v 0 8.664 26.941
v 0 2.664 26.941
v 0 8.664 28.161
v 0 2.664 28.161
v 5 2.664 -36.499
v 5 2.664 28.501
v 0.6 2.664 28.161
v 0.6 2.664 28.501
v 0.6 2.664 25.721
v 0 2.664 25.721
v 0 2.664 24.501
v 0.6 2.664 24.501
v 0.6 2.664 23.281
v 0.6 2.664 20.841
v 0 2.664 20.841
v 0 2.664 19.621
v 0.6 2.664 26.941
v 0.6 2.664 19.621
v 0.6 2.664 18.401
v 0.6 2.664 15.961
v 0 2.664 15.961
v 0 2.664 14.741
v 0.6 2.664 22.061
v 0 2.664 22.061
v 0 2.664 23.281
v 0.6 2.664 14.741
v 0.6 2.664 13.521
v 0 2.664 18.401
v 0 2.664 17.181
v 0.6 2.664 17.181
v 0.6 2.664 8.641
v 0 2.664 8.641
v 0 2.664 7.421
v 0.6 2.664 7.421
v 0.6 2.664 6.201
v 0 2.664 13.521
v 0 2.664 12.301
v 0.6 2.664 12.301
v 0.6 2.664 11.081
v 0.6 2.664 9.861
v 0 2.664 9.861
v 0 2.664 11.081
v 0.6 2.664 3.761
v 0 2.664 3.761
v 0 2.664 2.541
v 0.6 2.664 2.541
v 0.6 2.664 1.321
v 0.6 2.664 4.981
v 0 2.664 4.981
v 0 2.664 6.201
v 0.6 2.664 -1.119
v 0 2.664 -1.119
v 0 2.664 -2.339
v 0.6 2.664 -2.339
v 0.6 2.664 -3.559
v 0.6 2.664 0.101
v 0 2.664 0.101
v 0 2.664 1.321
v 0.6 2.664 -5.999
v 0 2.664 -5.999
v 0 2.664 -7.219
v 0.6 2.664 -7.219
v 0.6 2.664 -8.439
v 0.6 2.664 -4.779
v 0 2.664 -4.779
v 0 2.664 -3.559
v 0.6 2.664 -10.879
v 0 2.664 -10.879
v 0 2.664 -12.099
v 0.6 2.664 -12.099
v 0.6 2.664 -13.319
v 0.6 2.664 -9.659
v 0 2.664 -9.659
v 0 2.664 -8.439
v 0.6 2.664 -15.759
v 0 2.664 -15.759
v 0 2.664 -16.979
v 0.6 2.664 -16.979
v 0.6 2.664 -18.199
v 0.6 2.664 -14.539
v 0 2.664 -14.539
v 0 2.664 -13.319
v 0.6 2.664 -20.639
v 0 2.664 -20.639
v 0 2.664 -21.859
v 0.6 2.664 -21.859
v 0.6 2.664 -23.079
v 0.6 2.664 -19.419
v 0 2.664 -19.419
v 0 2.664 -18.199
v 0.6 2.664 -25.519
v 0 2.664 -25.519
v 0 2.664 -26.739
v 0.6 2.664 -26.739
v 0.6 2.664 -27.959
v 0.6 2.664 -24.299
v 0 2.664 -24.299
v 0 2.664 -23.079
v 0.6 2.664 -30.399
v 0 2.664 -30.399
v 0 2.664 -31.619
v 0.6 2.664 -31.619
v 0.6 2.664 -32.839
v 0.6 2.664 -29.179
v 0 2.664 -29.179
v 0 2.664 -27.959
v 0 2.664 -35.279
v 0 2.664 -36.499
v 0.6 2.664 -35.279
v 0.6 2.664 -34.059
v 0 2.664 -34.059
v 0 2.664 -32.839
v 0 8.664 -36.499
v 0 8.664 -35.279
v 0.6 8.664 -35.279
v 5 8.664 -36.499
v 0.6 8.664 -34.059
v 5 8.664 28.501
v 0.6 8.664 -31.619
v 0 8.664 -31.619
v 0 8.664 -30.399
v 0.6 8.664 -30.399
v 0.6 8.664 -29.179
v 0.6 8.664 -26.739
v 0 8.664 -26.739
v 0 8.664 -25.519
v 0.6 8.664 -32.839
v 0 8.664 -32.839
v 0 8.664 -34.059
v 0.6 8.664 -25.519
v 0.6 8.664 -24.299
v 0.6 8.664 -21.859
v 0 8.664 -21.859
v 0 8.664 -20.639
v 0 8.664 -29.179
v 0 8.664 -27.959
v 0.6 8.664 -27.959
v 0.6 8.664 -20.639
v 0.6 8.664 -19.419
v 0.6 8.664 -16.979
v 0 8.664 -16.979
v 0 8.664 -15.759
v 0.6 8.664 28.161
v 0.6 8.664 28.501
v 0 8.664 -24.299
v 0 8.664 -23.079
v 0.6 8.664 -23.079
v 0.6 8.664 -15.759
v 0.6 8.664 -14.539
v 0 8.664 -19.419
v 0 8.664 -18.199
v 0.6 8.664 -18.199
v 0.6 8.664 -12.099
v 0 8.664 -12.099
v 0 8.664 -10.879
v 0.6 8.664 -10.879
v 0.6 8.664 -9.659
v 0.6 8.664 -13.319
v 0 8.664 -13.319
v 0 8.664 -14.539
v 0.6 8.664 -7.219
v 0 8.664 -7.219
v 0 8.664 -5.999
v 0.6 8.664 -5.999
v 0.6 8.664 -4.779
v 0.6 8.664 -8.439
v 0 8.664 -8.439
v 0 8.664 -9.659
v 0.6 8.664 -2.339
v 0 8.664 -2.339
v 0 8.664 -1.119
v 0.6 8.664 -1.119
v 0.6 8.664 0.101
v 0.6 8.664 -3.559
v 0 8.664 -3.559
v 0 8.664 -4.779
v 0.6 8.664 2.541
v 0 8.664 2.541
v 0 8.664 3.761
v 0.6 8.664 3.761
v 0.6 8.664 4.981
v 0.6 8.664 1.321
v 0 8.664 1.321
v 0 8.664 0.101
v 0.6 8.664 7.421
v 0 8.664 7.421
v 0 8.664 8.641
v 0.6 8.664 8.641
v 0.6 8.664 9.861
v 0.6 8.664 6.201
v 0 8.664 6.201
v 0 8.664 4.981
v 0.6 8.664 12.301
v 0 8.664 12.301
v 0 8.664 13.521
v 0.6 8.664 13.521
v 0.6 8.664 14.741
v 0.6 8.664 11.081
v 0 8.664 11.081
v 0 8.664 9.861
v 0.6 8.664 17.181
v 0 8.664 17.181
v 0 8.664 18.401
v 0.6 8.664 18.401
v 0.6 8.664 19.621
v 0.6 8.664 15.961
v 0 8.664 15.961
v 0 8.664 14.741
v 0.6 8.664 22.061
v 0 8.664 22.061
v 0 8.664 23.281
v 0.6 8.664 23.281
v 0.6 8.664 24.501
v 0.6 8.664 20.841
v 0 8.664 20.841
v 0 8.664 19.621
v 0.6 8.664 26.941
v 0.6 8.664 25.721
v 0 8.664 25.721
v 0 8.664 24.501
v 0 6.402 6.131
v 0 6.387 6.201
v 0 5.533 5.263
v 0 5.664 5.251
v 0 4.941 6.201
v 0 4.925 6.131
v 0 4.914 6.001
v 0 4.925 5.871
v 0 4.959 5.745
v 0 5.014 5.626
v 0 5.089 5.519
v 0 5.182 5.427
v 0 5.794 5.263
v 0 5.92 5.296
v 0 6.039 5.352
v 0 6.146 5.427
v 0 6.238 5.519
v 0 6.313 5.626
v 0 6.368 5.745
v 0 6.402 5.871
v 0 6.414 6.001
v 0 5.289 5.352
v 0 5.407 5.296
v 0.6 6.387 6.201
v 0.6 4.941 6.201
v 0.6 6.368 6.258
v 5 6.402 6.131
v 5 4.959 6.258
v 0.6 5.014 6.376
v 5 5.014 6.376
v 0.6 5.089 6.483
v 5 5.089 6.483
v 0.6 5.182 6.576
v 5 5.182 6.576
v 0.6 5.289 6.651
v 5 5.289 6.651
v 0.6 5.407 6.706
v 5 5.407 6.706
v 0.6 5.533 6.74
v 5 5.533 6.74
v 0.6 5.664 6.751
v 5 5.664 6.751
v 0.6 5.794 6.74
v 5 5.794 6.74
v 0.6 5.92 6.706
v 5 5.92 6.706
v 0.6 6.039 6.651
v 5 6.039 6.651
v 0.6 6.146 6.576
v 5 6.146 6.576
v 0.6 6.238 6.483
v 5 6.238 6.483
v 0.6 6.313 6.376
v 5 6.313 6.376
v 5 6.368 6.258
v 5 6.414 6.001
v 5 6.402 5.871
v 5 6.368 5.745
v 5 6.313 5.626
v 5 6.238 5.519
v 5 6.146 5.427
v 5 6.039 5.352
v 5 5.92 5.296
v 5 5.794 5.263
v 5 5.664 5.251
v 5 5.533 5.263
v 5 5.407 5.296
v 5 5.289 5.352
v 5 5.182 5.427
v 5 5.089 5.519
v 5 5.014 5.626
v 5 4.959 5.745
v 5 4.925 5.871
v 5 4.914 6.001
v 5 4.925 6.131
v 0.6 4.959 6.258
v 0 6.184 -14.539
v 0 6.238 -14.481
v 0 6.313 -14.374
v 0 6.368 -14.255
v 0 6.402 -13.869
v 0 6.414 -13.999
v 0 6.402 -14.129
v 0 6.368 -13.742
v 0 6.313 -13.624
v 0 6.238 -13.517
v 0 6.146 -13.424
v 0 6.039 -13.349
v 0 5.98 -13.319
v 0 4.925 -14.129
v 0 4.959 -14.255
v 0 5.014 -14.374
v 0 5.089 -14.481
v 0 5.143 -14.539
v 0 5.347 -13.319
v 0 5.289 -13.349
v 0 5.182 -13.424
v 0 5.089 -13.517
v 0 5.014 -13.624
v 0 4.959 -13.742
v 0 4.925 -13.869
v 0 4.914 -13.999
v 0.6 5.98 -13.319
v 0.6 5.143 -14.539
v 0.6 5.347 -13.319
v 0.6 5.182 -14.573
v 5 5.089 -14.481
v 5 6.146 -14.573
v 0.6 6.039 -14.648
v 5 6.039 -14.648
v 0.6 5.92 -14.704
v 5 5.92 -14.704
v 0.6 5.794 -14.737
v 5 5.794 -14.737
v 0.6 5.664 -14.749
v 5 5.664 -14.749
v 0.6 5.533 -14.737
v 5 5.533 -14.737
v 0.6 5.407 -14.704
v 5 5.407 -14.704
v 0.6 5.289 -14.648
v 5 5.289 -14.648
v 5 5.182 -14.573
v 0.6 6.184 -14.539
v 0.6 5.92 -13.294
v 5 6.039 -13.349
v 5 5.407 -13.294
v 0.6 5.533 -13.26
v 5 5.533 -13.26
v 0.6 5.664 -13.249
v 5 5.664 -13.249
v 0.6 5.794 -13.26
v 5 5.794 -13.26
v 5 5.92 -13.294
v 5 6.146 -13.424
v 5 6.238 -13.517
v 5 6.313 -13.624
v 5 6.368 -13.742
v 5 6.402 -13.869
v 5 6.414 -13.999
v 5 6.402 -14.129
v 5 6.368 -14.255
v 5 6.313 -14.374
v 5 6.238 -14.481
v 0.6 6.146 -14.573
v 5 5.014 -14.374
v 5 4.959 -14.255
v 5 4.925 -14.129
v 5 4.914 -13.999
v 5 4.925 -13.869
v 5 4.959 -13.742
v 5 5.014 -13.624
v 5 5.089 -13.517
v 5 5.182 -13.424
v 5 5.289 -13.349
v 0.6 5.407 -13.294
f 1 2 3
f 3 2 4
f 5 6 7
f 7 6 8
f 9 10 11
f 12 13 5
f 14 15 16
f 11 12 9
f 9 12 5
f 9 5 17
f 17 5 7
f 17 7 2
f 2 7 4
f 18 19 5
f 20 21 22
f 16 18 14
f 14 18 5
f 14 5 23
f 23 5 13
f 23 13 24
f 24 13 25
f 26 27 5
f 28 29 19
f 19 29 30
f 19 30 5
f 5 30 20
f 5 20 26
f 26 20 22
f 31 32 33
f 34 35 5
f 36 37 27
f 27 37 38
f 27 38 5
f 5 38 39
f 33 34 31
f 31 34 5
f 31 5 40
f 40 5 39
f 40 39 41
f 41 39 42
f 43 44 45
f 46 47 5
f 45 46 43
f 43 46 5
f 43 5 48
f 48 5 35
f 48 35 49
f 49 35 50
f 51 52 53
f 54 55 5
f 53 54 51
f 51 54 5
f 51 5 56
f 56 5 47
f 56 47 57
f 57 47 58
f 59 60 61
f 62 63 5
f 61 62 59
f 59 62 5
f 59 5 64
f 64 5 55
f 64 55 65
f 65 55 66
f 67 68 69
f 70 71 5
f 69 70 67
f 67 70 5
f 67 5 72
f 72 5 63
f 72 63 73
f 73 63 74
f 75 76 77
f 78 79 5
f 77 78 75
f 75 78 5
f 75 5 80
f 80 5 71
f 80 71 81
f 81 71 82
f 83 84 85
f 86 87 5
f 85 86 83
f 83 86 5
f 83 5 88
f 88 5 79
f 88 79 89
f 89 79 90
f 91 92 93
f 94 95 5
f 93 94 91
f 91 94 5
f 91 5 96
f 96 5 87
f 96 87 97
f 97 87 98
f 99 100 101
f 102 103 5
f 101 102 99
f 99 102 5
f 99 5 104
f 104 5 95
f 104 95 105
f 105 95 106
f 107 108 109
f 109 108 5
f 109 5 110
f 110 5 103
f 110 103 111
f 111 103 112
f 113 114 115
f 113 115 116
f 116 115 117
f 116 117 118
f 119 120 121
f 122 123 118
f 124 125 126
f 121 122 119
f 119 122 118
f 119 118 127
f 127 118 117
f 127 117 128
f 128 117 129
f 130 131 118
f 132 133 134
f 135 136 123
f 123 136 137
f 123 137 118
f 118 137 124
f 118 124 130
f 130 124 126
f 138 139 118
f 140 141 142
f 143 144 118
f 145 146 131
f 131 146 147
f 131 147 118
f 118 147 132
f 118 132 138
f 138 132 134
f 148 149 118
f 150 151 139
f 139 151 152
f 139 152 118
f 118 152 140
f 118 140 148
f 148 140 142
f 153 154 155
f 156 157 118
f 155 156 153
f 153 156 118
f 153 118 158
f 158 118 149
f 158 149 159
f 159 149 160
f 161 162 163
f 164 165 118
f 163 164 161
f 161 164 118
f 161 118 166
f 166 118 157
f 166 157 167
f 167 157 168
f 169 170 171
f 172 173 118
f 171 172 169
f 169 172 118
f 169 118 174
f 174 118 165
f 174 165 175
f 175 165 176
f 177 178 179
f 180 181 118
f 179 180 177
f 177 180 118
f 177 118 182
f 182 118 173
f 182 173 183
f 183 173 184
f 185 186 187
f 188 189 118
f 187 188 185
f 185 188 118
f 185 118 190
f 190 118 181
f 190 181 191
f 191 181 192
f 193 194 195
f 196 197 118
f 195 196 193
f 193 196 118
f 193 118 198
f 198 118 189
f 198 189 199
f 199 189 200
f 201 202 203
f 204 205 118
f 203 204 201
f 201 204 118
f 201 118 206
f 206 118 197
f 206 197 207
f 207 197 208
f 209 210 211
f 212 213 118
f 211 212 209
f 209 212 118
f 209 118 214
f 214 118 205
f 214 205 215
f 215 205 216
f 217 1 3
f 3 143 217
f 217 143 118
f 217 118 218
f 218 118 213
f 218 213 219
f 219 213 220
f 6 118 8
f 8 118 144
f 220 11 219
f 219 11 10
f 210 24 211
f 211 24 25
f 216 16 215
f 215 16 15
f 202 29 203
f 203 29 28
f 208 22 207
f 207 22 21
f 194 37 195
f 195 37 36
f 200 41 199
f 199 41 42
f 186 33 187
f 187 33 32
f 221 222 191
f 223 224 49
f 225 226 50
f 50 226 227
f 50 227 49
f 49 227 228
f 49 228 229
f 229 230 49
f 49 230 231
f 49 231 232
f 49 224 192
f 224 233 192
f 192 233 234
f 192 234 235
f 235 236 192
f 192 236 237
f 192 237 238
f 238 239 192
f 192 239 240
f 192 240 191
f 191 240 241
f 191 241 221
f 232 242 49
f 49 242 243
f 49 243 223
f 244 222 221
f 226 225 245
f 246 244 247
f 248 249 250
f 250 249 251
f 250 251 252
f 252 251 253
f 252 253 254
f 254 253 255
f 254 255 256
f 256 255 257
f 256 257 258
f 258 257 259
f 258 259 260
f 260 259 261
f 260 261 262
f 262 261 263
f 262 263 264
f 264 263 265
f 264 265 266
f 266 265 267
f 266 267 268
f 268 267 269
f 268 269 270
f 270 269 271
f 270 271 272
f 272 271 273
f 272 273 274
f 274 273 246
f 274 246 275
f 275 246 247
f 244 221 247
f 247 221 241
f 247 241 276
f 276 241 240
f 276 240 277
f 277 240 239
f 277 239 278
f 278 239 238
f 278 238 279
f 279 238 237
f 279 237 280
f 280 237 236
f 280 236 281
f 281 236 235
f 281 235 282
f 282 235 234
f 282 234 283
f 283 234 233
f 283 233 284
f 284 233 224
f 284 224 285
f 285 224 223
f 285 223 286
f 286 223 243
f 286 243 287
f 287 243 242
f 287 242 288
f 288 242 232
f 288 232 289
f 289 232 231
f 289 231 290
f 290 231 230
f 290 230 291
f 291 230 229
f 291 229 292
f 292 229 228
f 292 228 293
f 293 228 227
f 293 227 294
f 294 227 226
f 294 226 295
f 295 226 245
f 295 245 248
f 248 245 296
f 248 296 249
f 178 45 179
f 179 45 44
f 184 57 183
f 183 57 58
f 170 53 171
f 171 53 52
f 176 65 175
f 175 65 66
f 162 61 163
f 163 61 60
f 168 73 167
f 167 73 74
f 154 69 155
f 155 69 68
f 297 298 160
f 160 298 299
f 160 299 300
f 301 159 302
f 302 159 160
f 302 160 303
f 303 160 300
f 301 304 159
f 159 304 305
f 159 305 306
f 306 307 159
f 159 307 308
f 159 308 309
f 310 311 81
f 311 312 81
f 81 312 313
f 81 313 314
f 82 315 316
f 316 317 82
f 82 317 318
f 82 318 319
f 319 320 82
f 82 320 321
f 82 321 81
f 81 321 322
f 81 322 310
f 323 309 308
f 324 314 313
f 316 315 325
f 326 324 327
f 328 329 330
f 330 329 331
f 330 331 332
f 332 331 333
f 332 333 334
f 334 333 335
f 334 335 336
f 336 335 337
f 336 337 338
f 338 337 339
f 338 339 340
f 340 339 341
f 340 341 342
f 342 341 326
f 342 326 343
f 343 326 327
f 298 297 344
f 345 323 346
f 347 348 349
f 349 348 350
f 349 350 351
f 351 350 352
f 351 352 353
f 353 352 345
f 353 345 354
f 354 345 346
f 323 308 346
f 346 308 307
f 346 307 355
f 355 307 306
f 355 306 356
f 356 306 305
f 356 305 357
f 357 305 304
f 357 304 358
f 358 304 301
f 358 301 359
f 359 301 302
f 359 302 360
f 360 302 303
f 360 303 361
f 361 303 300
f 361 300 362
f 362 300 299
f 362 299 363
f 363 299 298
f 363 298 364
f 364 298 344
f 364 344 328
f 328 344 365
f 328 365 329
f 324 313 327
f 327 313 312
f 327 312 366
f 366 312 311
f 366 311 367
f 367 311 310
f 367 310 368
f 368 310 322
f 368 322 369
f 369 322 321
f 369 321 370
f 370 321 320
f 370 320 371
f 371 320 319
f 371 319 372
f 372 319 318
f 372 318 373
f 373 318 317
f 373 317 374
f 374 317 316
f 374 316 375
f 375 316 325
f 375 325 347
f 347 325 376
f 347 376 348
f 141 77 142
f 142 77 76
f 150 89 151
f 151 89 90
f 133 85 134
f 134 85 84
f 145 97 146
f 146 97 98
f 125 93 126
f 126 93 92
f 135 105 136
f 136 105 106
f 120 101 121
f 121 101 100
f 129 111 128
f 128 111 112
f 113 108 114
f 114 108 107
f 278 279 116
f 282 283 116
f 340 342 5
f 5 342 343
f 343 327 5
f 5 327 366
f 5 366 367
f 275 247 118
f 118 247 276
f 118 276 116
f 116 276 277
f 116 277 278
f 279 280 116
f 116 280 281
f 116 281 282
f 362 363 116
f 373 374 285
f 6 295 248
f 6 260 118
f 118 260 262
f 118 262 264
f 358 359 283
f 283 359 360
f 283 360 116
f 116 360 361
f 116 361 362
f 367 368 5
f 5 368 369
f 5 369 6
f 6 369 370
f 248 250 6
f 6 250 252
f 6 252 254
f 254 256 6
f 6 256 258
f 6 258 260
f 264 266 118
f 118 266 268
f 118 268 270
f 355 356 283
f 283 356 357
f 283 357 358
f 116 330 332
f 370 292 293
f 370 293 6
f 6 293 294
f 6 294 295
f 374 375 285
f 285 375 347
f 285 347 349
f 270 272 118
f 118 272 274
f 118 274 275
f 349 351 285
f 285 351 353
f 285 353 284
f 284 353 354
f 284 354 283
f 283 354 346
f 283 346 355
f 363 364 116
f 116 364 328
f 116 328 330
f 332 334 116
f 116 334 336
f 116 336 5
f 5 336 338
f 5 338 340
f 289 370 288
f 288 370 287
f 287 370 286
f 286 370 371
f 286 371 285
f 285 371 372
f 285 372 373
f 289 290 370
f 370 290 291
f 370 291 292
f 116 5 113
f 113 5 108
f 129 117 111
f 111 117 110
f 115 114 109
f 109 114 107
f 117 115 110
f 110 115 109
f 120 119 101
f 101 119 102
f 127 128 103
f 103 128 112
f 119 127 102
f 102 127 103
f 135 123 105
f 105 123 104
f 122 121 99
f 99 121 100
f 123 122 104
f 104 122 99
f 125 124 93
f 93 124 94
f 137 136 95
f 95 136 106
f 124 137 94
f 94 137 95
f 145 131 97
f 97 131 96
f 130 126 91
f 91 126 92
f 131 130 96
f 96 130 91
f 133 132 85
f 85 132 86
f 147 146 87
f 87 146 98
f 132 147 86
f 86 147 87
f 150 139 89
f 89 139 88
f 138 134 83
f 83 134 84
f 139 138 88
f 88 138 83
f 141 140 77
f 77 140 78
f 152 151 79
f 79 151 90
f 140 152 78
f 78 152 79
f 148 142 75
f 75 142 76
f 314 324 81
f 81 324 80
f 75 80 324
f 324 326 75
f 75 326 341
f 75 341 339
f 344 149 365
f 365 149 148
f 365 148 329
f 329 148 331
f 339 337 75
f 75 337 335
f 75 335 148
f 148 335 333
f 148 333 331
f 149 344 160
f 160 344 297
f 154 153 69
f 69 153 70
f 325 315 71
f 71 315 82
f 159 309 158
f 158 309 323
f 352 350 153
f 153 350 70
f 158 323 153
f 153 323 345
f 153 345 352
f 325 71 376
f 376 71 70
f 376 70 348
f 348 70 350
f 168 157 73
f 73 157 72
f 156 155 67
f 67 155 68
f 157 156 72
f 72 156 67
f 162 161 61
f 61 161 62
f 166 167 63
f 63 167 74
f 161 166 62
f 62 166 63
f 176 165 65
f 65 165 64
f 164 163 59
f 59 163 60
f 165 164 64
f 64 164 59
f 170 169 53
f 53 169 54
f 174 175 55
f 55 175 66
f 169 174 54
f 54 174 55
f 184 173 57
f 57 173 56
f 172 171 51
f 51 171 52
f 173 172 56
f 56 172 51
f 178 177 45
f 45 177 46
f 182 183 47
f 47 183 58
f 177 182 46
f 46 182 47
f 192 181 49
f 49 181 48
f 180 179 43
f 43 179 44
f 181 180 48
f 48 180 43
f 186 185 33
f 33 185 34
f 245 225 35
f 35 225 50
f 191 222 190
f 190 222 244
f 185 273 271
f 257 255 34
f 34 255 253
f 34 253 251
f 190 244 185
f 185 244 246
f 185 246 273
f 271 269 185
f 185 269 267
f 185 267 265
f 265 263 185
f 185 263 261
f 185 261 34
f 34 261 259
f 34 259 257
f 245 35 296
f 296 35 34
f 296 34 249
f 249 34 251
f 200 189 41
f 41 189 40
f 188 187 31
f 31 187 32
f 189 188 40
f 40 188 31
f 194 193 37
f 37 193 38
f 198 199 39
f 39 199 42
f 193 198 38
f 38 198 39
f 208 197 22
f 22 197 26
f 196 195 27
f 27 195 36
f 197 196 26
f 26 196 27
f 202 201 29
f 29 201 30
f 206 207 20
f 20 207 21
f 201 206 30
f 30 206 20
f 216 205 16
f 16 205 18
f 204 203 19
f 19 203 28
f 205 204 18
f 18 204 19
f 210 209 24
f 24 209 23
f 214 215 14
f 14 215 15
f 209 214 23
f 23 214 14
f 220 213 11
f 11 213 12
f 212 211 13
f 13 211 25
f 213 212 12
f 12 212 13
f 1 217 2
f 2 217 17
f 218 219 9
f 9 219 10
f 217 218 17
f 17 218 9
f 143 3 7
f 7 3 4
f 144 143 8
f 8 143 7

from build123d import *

# Parameters (mm, degrees)
SKETCH_1_W          = 65
SKETCH_1_H          = 6
SKETCH_1_R          = 0.75
EXTRUDE_1_DEPTH     = 5
CUT_EXTRUDE_1_DEPTH = 15


with BuildPart() as part:
    # Эскиз1 → Бобышка-Вытянуть1 (new body)
    with BuildSketch(Plane(origin=(0, 0, 0), x_dir=(0, 0, -1), z_dir=(1, 0, 0))):
        with Locations((3.998772772, 5.663725322)):
            Rectangle(SKETCH_1_W, SKETCH_1_H)
        with Locations((-6.001227228, 5.663725322)):
            Circle(SKETCH_1_R, mode=Mode.SUBTRACT)
        with Locations((13.998772772, 5.663725322)):
            Circle(SKETCH_1_R, mode=Mode.SUBTRACT)
    extrude(amount=EXTRUDE_1_DEPTH)

    # Эскиз2 → Вырез-Вытянуть1 (cut)
    with BuildSketch(Plane(origin=(0, 8.663725322, 0), x_dir=(1, 0, 0), z_dir=(0, 1, 0))):
        Polygon((0, 35.278772772), (0, 36.498772772), (-0.186026499, 36.498772772), (-0.186026499, -29.381227228), (0.6, -29.381227228), (0.6, -28.161227228), (0, -28.161227228), (0, -26.941227228), (0.6, -26.941227228), (0.6, -25.721227228), (0, -25.721227228), (0, -24.501227228), (0.6, -24.501227228), (0.6, -23.281227228), (0, -23.281227228), (0, -22.061227228), (0.6, -22.061227228), (0.6, -20.841227228), (0, -20.841227228), (0, -19.621227228), (0.6, -19.621227228), (0.6, -18.401227228), (0, -18.401227228), (0, -17.181227228), (0.6, -17.181227228), (0.6, -15.961227228), (0, -15.961227228), (0, -14.741227228), (0.6, -14.741227228), (0.6, -13.521227228), (0, -13.521227228), (0, -12.301227228), (0.6, -12.301227228), (0.6, -11.081227228), (0, -11.081227228), (0, -9.861227228), (0.6, -9.861227228), (0.6, -8.641227228), (0, -8.641227228), (0, -7.421227228), (0.6, -7.421227228), (0.6, -6.201227228), (0, -6.201227228), (0, -4.981227228), (0.6, -4.981227228), (0.6, -3.761227228), (0, -3.761227228), (0, -2.541227228), (0.6, -2.541227228), (0.6, -1.321227228), (0, -1.321227228), (0, -0.101227228), (0.6, -0.101227228), (0.6, 1.118772772), (0, 1.118772772), (0, 2.338772772), (0.6, 2.338772772), (0.6, 3.558772772), (0, 3.558772772), (0, 4.778772772), (0.6, 4.778772772), (0.6, 5.998772772), (0, 5.998772772), (0, 7.218772772), (0.6, 7.218772772), (0.6, 8.438772772), (0, 8.438772772), (0, 9.658772772), (0.6, 9.658772772), (0.6, 10.878772772), (0, 10.878772772), (0, 12.098772772), (0.6, 12.098772772), (0.6, 13.318772772), (0, 13.318772772), (0, 14.538772772), (0.6, 14.538772772), (0.6, 15.758772772), (0, 15.758772772), (0, 16.978772772), (0.6, 16.978772772), (0.6, 18.198772772), (0, 18.198772772), (0, 19.418772772), (0.6, 19.418772772), (0.6, 20.638772772), (0, 20.638772772), (0, 21.858772772), (0.6, 21.858772772), (0.6, 23.078772772), (0, 23.078772772), (0, 24.298772772), (0.6, 24.298772772), (0.6, 25.518772772), (0, 25.518772772), (0, 26.738772772), (0.6, 26.738772772), (0.6, 27.958772772), (0, 27.958772772), (0, 29.178772772), (0.6, 29.178772772), (0.6, 30.398772772), (0, 30.398772772), (0, 31.618772772), (0.6, 31.618772772), (0.6, 32.838772772), (0, 32.838772772), (0, 34.058772772), (0.6, 34.058772772), (0.6, 35.278772772), align=None)
    extrude(amount=-CUT_EXTRUDE_1_DEPTH, mode=Mode.SUBTRACT)


solid = part.part
